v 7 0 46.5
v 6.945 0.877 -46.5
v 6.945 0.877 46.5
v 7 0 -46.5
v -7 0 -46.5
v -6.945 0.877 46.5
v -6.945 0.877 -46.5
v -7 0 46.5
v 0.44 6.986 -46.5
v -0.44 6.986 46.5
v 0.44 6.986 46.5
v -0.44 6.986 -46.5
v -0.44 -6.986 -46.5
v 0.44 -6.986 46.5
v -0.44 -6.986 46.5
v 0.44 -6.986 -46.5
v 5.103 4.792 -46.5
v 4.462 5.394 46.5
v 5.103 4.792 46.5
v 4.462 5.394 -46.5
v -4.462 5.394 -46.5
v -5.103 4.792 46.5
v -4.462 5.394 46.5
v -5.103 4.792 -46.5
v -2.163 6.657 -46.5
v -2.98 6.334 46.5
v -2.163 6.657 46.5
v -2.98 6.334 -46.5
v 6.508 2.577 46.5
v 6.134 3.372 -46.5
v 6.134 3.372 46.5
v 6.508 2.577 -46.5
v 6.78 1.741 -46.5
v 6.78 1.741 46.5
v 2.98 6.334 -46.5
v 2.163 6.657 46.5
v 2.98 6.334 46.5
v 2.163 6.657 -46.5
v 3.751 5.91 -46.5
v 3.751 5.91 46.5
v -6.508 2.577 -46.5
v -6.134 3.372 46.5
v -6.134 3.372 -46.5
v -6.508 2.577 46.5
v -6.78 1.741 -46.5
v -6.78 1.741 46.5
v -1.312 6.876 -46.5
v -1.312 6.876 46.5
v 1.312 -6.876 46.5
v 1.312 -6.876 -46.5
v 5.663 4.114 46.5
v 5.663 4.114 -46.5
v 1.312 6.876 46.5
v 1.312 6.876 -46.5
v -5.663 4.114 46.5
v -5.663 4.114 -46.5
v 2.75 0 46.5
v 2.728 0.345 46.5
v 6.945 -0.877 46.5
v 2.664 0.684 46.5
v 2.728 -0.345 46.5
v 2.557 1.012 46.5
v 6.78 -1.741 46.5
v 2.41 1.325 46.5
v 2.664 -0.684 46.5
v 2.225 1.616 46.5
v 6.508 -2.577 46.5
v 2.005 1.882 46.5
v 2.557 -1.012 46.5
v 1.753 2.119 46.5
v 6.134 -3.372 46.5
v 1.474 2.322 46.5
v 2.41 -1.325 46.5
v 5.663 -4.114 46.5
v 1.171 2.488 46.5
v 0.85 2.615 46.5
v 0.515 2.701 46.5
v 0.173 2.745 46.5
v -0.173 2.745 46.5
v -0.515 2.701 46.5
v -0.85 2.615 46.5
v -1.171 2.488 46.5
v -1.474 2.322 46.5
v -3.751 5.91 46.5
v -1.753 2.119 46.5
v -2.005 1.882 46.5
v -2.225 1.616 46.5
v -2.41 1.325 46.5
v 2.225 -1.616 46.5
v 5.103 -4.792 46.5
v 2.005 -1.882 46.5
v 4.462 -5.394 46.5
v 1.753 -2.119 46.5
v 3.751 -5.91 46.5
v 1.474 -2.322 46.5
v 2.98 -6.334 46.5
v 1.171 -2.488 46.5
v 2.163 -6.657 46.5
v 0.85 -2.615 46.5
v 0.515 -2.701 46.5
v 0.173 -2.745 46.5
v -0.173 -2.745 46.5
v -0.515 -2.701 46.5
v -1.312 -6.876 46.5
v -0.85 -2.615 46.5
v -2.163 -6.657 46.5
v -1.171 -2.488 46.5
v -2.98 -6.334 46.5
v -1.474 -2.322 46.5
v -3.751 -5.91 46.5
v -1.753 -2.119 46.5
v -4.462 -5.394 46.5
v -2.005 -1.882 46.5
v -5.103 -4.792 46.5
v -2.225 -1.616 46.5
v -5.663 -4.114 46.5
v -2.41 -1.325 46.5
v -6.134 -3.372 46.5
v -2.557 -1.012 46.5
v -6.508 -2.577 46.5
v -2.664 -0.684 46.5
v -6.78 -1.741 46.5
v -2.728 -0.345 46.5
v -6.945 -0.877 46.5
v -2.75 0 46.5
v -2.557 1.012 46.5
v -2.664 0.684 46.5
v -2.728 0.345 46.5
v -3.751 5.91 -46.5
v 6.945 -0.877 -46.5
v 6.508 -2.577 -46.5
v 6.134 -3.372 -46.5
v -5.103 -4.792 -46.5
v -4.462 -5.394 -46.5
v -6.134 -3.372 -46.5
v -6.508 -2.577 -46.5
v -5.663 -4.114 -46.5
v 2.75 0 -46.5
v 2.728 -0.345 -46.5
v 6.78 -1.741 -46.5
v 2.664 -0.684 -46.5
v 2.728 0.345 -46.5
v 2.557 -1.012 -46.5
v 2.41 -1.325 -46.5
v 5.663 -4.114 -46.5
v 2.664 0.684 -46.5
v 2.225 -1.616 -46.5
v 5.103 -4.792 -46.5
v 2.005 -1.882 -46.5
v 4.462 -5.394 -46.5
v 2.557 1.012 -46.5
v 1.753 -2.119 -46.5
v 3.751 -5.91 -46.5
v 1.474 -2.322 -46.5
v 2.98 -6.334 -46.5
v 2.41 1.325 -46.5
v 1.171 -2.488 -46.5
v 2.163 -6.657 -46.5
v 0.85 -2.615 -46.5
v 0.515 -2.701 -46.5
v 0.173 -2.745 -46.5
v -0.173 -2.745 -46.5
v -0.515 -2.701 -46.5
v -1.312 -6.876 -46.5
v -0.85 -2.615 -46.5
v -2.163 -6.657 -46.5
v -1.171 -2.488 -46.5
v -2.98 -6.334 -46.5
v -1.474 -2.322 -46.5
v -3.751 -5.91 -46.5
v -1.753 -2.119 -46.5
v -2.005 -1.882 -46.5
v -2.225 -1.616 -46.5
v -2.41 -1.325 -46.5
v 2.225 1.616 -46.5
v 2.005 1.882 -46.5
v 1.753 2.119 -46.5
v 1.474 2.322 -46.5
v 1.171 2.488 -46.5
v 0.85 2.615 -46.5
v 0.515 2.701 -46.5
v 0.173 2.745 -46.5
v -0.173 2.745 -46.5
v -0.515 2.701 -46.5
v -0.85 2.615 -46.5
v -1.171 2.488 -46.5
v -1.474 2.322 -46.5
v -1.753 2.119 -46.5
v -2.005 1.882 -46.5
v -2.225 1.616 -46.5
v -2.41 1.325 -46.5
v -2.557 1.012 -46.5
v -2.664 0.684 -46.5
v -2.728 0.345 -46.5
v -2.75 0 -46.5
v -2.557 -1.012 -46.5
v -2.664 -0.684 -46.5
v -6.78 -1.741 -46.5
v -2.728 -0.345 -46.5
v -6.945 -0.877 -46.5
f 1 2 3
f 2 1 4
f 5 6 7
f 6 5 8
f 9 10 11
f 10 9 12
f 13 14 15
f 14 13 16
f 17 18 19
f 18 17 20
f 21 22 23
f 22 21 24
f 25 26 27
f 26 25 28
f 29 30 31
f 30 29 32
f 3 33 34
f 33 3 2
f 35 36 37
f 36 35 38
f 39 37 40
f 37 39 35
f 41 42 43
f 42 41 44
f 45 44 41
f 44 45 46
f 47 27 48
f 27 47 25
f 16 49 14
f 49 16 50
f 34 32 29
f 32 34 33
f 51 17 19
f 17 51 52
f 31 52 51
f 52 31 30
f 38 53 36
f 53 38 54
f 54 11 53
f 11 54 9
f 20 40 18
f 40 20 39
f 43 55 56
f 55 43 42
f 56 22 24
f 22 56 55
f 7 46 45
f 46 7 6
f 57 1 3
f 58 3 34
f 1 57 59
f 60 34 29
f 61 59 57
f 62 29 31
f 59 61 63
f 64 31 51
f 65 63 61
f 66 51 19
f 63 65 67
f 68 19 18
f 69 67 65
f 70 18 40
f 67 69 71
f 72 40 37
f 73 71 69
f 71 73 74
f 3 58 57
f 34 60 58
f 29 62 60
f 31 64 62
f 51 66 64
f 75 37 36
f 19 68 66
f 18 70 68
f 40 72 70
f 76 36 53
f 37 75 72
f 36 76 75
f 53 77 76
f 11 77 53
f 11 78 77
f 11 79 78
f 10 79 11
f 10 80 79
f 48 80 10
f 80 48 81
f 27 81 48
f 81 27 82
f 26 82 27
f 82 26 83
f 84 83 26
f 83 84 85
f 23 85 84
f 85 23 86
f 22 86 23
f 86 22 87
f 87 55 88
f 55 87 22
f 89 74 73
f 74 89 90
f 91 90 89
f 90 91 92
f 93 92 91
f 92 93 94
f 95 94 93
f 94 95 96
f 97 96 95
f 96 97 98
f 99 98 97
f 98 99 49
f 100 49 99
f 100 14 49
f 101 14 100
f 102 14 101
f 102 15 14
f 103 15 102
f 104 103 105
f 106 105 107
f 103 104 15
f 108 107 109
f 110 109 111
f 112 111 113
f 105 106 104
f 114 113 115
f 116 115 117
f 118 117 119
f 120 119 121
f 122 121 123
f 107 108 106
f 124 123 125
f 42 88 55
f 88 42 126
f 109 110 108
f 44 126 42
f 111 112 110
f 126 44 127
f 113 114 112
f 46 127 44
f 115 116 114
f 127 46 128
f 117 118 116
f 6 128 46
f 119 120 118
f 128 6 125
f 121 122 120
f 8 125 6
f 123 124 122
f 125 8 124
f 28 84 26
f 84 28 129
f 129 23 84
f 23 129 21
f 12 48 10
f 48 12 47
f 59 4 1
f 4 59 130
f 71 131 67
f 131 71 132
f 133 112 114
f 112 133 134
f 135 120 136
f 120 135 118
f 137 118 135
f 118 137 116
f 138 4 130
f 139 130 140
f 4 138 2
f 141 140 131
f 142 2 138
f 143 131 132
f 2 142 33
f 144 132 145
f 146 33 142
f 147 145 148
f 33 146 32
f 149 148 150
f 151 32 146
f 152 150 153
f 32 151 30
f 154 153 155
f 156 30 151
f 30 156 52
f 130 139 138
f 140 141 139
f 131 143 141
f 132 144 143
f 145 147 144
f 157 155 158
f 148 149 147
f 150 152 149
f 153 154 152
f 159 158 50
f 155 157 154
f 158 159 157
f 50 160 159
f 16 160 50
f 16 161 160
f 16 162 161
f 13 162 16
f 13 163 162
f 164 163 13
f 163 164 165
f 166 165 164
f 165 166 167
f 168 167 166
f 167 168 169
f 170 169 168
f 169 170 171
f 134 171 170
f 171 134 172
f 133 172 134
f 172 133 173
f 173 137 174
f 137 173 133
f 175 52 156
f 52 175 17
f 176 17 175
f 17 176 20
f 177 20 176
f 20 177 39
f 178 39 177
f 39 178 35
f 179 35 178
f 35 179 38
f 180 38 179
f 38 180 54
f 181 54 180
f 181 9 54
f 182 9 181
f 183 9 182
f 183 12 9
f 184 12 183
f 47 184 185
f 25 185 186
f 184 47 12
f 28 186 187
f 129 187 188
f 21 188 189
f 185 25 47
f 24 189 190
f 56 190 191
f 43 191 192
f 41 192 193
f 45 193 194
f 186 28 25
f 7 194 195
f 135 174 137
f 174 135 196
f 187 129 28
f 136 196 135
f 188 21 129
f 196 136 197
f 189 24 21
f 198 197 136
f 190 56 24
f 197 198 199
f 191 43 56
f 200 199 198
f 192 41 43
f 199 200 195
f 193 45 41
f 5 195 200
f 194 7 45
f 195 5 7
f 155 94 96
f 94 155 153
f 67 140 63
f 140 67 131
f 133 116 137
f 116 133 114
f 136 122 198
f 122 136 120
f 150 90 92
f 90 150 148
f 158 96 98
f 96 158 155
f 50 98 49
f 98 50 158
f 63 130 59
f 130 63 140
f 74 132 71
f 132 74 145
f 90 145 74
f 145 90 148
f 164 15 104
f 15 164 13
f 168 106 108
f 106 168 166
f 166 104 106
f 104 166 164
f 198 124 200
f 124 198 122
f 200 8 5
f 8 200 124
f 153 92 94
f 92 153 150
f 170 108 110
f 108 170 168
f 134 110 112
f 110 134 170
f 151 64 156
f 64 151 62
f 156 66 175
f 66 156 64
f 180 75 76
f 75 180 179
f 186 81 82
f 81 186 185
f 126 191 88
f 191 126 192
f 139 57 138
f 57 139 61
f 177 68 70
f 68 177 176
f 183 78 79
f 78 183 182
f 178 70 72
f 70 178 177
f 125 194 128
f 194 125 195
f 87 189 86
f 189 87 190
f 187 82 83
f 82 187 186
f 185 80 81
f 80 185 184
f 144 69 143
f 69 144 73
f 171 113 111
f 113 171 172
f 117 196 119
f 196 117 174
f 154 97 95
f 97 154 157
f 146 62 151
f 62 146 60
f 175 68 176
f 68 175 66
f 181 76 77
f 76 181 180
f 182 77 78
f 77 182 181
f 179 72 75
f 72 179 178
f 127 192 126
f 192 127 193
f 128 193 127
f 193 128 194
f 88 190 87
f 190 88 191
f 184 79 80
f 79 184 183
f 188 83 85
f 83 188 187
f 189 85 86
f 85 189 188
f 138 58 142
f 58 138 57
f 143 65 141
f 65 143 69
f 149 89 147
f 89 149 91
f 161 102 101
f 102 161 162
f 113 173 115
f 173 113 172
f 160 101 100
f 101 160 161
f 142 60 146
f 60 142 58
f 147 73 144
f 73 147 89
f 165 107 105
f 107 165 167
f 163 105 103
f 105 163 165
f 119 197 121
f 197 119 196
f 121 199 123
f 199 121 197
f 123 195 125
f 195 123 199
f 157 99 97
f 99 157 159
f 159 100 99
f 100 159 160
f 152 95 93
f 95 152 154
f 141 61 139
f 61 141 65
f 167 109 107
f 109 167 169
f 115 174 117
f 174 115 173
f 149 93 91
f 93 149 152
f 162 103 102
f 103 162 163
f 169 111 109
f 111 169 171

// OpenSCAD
$fn = 50;


difference() {
	union() {
		translate(v = [0, 0, -46.5000000000]) {
			cylinder(h = 93, r = 7.0000000000);
		}
	}
	union() {
		translate(v = [0, 0, -100.0000000000]) {
			cylinder(h = 200, r = 2.7500000000);
		}
	}
}
